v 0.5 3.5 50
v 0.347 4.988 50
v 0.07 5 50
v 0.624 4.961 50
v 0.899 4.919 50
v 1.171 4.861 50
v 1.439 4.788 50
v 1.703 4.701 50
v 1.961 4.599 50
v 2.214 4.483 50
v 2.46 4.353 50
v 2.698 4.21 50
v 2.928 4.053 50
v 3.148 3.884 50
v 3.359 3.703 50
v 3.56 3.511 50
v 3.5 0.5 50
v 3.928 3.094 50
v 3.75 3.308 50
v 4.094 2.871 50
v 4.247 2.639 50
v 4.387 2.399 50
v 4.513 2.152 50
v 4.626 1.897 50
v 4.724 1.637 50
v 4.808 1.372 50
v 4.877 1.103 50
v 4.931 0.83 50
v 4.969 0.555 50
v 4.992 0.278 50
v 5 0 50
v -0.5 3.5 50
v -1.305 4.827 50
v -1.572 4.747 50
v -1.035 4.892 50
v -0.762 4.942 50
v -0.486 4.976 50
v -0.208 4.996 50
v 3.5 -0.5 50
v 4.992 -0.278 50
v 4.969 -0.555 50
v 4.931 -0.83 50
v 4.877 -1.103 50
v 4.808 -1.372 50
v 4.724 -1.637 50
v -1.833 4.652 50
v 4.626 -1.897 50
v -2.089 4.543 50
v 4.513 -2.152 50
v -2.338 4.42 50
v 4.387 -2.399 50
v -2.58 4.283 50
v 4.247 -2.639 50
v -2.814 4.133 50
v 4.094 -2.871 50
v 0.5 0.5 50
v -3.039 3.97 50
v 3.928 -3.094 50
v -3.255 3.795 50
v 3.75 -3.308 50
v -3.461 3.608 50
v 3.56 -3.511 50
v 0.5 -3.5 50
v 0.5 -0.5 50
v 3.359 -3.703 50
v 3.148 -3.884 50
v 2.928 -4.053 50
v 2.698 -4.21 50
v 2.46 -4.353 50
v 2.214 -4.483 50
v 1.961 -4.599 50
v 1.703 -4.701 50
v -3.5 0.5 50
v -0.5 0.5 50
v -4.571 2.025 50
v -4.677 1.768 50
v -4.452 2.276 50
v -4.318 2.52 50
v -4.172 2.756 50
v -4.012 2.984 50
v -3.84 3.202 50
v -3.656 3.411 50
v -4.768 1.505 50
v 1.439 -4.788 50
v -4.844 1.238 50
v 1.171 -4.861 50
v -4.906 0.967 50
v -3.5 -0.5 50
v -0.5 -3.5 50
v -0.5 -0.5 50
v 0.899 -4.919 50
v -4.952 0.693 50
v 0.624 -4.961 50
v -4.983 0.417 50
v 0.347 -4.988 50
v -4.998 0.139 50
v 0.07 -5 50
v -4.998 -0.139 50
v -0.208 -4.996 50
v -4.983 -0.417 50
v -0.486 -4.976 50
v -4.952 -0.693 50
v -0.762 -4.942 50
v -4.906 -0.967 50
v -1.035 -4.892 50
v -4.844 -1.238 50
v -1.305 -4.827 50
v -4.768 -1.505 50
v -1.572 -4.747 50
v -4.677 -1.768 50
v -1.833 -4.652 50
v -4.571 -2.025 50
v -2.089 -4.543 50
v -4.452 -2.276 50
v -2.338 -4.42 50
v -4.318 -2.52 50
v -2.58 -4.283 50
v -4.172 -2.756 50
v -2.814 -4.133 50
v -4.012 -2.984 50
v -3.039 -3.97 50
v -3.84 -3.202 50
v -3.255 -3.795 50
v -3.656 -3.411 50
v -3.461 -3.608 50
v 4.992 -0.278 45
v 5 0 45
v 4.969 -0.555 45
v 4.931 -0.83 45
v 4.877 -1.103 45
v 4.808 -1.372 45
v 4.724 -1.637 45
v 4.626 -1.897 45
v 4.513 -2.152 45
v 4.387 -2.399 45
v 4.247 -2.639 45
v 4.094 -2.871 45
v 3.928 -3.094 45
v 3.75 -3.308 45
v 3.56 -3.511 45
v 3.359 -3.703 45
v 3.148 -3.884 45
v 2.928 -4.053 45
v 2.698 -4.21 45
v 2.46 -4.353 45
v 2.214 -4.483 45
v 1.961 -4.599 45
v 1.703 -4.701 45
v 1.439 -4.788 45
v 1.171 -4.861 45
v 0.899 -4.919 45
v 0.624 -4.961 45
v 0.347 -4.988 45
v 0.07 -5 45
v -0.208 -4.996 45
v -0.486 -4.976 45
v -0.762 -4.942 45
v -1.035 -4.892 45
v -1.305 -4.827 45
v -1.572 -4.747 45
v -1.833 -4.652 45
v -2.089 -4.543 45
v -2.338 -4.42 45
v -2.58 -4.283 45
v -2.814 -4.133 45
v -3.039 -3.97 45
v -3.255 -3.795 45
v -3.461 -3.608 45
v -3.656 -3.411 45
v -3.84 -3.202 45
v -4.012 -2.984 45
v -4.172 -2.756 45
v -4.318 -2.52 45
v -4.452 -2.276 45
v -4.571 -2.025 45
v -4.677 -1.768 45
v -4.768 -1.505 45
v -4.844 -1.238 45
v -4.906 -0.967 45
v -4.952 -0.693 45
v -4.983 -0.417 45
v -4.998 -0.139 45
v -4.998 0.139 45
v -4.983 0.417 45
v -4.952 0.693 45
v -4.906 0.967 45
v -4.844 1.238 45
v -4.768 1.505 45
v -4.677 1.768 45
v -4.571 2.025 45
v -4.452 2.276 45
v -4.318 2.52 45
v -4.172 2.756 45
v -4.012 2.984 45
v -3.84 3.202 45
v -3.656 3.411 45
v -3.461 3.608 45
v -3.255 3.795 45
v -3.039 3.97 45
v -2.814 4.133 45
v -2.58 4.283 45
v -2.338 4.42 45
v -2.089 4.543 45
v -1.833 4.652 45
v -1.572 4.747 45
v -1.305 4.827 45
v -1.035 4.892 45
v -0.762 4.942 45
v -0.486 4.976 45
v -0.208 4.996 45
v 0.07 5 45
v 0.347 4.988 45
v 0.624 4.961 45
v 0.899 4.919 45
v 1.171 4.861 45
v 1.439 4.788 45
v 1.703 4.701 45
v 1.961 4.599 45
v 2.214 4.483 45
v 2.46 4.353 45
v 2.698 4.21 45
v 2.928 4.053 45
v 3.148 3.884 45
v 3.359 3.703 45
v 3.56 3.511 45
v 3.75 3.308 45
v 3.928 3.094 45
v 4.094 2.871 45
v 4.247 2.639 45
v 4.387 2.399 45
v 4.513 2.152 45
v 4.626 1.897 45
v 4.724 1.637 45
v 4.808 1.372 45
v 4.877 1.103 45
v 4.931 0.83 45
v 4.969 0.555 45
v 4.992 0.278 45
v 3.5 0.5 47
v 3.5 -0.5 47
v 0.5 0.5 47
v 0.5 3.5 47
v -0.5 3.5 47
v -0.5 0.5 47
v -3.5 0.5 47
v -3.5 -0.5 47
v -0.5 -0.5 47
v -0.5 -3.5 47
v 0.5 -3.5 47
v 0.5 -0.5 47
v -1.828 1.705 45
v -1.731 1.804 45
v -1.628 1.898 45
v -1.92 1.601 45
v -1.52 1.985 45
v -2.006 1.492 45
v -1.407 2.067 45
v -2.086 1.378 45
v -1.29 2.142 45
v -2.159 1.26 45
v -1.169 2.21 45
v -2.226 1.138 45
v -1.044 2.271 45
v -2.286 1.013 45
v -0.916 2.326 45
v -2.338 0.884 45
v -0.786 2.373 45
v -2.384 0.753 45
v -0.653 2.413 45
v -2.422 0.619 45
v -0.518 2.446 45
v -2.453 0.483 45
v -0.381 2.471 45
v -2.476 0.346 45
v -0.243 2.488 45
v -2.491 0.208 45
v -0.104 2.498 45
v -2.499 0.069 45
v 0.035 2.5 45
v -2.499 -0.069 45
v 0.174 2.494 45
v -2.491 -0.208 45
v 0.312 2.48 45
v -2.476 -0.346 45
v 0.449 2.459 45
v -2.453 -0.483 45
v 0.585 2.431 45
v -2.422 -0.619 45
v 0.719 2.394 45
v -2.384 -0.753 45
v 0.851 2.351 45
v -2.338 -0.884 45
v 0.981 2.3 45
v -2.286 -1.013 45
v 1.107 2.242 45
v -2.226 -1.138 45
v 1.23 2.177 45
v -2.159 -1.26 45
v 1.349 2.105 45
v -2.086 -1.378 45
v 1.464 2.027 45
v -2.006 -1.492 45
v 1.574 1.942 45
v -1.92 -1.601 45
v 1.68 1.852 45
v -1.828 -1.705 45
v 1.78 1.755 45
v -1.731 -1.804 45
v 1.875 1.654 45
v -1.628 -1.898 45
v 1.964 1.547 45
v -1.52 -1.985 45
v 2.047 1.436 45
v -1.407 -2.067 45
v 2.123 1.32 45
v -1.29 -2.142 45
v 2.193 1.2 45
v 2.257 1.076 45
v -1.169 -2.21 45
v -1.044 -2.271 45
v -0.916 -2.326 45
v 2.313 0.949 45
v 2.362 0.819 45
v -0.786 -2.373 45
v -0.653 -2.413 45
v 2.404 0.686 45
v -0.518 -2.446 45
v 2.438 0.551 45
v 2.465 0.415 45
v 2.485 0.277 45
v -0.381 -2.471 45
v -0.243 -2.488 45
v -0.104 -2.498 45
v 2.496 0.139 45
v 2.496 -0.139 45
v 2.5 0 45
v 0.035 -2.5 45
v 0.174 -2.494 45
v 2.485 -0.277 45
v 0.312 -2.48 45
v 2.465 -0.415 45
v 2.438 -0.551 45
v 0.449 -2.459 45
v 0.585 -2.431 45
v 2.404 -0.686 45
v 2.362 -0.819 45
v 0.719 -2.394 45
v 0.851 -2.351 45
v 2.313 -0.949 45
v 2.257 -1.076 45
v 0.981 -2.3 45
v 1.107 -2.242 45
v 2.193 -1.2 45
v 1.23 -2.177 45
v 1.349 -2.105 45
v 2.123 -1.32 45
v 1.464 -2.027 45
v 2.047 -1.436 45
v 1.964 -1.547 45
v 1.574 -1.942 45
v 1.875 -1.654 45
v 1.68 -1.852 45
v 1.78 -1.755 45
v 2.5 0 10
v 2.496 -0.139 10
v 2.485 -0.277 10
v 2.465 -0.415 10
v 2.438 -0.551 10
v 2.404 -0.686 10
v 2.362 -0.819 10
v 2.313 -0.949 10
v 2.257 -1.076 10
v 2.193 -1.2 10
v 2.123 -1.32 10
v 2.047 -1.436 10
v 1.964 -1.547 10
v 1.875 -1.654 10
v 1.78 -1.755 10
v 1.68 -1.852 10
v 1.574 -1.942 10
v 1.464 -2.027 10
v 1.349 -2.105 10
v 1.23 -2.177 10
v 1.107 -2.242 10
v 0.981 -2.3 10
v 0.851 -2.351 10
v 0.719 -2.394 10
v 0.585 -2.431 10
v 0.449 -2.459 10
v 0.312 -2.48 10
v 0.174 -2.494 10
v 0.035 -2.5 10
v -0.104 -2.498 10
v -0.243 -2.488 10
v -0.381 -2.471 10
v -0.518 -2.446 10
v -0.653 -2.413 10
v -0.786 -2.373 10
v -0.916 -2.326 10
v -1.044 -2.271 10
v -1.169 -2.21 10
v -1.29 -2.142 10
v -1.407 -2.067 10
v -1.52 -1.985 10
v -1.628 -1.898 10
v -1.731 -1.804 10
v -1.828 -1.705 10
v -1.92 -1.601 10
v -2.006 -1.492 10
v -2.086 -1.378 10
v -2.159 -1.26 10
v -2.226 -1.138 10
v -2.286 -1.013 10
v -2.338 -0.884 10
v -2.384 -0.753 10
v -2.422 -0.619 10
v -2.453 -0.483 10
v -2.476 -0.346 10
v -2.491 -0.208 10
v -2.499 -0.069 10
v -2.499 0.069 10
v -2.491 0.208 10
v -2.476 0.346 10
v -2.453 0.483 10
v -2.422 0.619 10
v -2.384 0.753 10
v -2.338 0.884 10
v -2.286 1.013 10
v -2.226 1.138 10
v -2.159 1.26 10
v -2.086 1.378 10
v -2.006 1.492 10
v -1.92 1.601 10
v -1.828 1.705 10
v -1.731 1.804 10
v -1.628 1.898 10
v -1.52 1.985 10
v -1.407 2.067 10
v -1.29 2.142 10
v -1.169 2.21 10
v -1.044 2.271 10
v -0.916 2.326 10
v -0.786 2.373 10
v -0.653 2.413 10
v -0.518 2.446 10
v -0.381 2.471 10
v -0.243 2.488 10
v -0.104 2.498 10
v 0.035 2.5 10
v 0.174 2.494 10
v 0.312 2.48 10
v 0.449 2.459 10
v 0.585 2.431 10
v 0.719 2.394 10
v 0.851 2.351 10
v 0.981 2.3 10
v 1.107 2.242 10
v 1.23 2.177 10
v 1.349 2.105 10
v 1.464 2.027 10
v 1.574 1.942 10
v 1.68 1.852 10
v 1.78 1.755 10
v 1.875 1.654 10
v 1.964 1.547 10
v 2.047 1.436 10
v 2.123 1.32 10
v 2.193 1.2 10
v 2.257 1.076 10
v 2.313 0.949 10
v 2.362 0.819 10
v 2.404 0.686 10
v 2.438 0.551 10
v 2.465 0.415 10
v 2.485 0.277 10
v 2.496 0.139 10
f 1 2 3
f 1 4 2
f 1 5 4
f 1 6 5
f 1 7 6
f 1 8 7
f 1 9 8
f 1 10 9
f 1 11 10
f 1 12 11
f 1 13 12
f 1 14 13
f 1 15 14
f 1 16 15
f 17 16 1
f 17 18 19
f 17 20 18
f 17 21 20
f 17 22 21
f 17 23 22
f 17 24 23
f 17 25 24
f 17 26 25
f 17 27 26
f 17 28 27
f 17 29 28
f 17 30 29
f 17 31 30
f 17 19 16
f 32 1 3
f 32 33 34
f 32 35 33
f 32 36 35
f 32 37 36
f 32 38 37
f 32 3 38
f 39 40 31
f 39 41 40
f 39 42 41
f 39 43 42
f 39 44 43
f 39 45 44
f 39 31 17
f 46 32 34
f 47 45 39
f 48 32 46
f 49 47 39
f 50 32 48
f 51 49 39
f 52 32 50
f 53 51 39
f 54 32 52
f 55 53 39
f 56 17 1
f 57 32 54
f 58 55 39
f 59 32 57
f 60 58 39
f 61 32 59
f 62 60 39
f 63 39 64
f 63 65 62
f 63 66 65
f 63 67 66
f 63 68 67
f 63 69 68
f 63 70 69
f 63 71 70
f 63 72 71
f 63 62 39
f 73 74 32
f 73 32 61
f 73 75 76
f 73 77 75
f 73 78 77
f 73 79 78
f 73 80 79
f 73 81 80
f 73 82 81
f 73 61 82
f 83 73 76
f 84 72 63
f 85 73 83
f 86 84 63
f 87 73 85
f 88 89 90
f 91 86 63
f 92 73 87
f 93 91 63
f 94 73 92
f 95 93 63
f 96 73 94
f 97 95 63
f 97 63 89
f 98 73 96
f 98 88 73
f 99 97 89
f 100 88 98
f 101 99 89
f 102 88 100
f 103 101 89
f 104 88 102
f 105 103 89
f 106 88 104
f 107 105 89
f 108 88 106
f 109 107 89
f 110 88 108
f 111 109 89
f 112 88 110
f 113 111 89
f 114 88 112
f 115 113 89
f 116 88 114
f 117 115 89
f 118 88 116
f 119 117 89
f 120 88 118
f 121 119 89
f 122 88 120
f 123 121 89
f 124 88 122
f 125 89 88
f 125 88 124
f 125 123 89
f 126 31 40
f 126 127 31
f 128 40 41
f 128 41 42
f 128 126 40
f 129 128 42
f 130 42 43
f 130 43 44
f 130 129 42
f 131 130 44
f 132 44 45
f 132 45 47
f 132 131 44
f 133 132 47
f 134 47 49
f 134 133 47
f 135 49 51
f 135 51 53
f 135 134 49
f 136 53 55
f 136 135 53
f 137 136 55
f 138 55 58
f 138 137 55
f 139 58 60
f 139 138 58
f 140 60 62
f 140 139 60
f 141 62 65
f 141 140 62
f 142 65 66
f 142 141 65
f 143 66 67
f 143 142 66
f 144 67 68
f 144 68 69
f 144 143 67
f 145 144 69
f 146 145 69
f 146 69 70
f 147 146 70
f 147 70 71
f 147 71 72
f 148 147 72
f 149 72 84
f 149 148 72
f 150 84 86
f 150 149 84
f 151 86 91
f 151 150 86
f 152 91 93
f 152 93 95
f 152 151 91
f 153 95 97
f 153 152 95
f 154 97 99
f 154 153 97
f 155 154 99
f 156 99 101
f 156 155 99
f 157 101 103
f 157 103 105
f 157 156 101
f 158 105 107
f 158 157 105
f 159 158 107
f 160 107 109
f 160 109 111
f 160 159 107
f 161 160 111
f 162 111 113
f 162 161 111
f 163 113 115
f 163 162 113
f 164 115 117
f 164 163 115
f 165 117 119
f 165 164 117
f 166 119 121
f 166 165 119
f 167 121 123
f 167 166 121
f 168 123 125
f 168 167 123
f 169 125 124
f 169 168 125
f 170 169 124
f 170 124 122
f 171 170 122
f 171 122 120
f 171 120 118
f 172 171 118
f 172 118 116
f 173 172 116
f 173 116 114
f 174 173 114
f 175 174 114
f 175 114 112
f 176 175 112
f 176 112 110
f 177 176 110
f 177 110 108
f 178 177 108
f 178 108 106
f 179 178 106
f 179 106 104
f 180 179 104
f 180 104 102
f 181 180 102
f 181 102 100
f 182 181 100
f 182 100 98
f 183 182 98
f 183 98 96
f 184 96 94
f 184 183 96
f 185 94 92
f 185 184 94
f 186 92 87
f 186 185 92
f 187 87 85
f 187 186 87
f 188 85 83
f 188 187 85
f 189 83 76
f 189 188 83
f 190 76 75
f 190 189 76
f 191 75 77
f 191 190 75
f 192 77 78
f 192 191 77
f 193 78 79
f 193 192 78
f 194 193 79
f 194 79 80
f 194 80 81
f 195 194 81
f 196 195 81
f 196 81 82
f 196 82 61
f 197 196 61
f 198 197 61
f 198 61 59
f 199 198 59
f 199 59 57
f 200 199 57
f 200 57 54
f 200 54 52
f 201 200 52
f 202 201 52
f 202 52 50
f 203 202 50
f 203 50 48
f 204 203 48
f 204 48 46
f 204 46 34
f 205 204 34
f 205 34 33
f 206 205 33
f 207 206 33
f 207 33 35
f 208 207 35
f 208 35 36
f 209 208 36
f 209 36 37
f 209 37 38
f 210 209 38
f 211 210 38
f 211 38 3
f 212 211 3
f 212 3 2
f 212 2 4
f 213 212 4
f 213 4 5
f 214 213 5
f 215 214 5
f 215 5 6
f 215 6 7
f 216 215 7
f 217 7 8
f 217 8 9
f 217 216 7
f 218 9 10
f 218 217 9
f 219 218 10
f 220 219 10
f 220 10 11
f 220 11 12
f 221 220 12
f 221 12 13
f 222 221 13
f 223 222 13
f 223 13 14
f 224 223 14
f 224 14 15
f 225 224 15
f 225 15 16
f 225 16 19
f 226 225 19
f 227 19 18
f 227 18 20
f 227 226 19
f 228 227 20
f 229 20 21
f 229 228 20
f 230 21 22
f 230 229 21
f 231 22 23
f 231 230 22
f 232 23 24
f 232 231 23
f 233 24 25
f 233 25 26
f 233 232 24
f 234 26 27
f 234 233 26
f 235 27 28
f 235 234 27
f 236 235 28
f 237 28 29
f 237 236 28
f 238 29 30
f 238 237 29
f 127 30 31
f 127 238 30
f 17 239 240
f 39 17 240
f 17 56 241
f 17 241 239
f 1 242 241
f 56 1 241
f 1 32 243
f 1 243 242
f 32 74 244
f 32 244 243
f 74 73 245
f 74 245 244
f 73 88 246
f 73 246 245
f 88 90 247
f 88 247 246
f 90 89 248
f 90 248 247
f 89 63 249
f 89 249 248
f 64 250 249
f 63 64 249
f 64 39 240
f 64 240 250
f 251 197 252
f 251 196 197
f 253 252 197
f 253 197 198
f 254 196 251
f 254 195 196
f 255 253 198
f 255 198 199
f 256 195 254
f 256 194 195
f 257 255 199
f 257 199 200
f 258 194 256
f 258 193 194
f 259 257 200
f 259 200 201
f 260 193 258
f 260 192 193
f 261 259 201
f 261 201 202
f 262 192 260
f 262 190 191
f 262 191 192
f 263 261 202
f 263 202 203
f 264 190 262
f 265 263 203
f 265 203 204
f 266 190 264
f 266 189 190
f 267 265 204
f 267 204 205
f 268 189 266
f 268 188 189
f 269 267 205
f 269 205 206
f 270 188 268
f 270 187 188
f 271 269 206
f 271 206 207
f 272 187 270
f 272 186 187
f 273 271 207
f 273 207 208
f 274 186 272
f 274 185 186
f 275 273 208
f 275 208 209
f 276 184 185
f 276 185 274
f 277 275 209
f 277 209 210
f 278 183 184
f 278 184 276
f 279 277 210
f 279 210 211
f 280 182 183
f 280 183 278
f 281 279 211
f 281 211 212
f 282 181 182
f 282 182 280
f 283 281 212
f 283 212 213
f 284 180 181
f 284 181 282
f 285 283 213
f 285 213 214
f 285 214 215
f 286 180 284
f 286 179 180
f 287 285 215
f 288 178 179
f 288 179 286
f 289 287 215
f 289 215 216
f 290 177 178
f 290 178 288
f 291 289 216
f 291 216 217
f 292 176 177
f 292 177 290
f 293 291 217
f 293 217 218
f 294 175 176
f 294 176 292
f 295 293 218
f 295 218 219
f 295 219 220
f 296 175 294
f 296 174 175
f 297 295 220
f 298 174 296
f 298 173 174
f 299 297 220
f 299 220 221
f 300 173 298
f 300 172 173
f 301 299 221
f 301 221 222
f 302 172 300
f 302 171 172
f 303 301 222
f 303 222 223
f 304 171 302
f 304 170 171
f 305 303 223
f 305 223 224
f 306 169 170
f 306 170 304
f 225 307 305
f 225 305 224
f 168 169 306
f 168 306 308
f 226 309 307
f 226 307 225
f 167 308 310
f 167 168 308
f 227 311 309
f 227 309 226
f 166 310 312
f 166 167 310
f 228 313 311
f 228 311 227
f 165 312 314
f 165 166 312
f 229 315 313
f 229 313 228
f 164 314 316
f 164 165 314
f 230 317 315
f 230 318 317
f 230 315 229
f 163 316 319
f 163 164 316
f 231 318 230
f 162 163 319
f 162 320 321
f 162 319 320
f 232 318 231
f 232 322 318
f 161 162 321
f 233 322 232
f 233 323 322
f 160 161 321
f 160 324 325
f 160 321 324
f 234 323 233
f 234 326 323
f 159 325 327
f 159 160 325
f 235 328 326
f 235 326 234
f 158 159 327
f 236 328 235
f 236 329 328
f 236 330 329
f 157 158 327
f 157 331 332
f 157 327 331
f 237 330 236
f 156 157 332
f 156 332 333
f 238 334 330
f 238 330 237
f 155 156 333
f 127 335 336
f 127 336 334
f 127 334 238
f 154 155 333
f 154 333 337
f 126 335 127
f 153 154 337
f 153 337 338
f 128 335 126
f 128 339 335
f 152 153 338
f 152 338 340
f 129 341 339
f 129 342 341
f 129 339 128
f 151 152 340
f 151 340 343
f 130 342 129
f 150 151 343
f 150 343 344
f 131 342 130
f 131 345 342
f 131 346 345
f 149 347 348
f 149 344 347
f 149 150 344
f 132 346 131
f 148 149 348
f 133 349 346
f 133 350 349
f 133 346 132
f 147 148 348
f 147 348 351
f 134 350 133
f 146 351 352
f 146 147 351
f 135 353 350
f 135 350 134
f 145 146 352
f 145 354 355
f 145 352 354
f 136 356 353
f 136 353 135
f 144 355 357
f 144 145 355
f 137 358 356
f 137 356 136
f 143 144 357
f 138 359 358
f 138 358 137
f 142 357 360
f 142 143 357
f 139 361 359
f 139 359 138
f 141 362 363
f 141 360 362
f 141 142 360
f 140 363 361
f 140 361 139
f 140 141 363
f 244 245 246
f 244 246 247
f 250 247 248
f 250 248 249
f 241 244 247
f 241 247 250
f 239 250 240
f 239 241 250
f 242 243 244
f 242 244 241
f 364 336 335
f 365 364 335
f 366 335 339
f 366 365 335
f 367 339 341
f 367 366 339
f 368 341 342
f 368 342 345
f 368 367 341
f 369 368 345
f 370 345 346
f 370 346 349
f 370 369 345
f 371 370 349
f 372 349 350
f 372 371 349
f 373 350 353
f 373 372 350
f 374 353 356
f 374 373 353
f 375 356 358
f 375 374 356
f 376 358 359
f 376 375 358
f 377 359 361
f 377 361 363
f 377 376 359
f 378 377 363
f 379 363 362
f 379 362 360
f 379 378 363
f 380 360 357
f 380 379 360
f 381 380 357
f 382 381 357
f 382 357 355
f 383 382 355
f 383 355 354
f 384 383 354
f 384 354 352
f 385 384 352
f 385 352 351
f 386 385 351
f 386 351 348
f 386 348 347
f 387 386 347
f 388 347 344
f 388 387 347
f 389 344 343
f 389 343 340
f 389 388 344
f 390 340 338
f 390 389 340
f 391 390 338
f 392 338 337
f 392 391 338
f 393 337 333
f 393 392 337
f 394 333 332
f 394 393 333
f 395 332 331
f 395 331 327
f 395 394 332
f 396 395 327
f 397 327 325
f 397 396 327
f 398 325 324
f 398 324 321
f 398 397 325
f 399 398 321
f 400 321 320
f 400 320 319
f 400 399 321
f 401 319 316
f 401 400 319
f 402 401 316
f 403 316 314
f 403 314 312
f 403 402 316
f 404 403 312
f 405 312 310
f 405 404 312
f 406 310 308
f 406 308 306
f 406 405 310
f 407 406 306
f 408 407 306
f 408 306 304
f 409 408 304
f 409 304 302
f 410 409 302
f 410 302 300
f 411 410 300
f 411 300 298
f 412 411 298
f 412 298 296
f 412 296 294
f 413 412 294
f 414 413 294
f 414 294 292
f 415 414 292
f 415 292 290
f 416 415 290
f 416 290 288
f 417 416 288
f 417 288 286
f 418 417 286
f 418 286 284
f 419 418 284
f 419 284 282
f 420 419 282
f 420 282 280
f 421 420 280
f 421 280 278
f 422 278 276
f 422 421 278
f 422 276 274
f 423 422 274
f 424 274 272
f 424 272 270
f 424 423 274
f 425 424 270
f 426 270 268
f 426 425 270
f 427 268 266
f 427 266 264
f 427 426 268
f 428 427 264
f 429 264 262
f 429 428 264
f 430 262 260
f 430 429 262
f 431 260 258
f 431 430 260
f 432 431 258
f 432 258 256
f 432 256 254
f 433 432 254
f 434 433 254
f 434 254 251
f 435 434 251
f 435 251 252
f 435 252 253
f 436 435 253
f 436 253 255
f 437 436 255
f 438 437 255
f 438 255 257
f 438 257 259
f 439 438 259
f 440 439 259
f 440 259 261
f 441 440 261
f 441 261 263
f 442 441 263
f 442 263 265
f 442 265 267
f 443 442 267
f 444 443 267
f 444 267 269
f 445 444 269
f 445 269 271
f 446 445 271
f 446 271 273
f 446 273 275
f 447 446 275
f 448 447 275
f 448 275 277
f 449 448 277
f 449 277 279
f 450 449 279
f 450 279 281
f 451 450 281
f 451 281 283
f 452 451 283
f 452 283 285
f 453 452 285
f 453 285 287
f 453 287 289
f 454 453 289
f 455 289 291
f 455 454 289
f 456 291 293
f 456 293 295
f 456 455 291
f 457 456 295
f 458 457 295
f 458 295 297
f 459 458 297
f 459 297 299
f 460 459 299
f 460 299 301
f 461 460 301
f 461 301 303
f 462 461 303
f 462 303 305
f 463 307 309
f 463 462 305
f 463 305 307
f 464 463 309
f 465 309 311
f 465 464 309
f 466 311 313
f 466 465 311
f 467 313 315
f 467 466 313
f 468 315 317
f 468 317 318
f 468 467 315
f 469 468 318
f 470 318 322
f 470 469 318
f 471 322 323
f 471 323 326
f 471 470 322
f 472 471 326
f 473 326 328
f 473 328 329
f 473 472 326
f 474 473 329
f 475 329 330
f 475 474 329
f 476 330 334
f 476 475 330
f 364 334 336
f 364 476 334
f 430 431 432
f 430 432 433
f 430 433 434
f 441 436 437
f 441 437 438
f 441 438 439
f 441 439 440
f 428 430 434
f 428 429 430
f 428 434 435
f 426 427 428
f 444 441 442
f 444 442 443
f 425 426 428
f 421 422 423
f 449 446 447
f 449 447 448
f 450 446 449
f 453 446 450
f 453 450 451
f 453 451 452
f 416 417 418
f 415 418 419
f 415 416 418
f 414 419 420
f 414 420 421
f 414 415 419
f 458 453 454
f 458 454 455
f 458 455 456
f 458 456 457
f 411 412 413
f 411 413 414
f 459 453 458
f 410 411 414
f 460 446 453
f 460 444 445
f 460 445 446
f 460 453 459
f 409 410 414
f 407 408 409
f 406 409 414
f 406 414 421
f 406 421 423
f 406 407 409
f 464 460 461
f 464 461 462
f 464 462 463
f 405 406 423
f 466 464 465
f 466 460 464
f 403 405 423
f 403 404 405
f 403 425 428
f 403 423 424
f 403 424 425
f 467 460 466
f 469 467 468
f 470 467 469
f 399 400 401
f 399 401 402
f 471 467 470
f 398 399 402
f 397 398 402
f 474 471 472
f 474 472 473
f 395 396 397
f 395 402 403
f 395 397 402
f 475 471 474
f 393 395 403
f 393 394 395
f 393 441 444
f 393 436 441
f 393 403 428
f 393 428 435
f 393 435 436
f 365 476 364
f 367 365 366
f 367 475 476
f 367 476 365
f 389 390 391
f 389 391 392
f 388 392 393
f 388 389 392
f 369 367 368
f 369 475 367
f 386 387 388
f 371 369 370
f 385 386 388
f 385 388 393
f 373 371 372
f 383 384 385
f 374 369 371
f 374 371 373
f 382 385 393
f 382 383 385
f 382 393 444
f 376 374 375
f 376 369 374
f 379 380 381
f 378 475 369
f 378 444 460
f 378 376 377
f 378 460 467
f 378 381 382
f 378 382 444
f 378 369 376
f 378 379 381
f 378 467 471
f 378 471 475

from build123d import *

# Parameters (mm, degrees)
POCKET_DEPTH    = 3
POCKET_FACE18_R = 2.5
POCKET001_DEPTH = 10


with BuildPart() as part:
    # Sketch → Revolution (revolve)
    with BuildSketch(Plane.XZ):
        Polygon((0, 50), (5, 50), (5, 45), (2.5, 45), (2.5, 0), (0, 0), align=None)
    revolve(axis=Axis((0, 0, 0), (0, 0, 1)))

    # Sketch001 (on Face1 of Revolution) → Pocket (cut)
    with BuildSketch(Plane(origin=(0, 0, 50), x_dir=(-1, 0, 0), z_dir=(0, 0, 1))):
        Polygon((-3.5, 0.5), (-0.5, 0.5), (-0.5, 3.5), (0.5, 3.5), (0.5, 0.5), (3.5, 0.5), (3.5, -0.5), (0.5, -0.5), (0.5, -3.5), (-0.5, -3.5), (-0.5, -0.5), (-3.5, -0.5), align=None)
    extrude(amount=-POCKET_DEPTH, mode=Mode.SUBTRACT)

    # Pocket Face18 → Pocket001 (cut)
    with BuildSketch(Plane(origin=(0, 0, 0), x_dir=(0, -1, 0), z_dir=(0, 0, -1))):
        Circle(POCKET_FACE18_R)
    extrude(amount=-POCKET001_DEPTH, mode=Mode.SUBTRACT)


solid = part.part
